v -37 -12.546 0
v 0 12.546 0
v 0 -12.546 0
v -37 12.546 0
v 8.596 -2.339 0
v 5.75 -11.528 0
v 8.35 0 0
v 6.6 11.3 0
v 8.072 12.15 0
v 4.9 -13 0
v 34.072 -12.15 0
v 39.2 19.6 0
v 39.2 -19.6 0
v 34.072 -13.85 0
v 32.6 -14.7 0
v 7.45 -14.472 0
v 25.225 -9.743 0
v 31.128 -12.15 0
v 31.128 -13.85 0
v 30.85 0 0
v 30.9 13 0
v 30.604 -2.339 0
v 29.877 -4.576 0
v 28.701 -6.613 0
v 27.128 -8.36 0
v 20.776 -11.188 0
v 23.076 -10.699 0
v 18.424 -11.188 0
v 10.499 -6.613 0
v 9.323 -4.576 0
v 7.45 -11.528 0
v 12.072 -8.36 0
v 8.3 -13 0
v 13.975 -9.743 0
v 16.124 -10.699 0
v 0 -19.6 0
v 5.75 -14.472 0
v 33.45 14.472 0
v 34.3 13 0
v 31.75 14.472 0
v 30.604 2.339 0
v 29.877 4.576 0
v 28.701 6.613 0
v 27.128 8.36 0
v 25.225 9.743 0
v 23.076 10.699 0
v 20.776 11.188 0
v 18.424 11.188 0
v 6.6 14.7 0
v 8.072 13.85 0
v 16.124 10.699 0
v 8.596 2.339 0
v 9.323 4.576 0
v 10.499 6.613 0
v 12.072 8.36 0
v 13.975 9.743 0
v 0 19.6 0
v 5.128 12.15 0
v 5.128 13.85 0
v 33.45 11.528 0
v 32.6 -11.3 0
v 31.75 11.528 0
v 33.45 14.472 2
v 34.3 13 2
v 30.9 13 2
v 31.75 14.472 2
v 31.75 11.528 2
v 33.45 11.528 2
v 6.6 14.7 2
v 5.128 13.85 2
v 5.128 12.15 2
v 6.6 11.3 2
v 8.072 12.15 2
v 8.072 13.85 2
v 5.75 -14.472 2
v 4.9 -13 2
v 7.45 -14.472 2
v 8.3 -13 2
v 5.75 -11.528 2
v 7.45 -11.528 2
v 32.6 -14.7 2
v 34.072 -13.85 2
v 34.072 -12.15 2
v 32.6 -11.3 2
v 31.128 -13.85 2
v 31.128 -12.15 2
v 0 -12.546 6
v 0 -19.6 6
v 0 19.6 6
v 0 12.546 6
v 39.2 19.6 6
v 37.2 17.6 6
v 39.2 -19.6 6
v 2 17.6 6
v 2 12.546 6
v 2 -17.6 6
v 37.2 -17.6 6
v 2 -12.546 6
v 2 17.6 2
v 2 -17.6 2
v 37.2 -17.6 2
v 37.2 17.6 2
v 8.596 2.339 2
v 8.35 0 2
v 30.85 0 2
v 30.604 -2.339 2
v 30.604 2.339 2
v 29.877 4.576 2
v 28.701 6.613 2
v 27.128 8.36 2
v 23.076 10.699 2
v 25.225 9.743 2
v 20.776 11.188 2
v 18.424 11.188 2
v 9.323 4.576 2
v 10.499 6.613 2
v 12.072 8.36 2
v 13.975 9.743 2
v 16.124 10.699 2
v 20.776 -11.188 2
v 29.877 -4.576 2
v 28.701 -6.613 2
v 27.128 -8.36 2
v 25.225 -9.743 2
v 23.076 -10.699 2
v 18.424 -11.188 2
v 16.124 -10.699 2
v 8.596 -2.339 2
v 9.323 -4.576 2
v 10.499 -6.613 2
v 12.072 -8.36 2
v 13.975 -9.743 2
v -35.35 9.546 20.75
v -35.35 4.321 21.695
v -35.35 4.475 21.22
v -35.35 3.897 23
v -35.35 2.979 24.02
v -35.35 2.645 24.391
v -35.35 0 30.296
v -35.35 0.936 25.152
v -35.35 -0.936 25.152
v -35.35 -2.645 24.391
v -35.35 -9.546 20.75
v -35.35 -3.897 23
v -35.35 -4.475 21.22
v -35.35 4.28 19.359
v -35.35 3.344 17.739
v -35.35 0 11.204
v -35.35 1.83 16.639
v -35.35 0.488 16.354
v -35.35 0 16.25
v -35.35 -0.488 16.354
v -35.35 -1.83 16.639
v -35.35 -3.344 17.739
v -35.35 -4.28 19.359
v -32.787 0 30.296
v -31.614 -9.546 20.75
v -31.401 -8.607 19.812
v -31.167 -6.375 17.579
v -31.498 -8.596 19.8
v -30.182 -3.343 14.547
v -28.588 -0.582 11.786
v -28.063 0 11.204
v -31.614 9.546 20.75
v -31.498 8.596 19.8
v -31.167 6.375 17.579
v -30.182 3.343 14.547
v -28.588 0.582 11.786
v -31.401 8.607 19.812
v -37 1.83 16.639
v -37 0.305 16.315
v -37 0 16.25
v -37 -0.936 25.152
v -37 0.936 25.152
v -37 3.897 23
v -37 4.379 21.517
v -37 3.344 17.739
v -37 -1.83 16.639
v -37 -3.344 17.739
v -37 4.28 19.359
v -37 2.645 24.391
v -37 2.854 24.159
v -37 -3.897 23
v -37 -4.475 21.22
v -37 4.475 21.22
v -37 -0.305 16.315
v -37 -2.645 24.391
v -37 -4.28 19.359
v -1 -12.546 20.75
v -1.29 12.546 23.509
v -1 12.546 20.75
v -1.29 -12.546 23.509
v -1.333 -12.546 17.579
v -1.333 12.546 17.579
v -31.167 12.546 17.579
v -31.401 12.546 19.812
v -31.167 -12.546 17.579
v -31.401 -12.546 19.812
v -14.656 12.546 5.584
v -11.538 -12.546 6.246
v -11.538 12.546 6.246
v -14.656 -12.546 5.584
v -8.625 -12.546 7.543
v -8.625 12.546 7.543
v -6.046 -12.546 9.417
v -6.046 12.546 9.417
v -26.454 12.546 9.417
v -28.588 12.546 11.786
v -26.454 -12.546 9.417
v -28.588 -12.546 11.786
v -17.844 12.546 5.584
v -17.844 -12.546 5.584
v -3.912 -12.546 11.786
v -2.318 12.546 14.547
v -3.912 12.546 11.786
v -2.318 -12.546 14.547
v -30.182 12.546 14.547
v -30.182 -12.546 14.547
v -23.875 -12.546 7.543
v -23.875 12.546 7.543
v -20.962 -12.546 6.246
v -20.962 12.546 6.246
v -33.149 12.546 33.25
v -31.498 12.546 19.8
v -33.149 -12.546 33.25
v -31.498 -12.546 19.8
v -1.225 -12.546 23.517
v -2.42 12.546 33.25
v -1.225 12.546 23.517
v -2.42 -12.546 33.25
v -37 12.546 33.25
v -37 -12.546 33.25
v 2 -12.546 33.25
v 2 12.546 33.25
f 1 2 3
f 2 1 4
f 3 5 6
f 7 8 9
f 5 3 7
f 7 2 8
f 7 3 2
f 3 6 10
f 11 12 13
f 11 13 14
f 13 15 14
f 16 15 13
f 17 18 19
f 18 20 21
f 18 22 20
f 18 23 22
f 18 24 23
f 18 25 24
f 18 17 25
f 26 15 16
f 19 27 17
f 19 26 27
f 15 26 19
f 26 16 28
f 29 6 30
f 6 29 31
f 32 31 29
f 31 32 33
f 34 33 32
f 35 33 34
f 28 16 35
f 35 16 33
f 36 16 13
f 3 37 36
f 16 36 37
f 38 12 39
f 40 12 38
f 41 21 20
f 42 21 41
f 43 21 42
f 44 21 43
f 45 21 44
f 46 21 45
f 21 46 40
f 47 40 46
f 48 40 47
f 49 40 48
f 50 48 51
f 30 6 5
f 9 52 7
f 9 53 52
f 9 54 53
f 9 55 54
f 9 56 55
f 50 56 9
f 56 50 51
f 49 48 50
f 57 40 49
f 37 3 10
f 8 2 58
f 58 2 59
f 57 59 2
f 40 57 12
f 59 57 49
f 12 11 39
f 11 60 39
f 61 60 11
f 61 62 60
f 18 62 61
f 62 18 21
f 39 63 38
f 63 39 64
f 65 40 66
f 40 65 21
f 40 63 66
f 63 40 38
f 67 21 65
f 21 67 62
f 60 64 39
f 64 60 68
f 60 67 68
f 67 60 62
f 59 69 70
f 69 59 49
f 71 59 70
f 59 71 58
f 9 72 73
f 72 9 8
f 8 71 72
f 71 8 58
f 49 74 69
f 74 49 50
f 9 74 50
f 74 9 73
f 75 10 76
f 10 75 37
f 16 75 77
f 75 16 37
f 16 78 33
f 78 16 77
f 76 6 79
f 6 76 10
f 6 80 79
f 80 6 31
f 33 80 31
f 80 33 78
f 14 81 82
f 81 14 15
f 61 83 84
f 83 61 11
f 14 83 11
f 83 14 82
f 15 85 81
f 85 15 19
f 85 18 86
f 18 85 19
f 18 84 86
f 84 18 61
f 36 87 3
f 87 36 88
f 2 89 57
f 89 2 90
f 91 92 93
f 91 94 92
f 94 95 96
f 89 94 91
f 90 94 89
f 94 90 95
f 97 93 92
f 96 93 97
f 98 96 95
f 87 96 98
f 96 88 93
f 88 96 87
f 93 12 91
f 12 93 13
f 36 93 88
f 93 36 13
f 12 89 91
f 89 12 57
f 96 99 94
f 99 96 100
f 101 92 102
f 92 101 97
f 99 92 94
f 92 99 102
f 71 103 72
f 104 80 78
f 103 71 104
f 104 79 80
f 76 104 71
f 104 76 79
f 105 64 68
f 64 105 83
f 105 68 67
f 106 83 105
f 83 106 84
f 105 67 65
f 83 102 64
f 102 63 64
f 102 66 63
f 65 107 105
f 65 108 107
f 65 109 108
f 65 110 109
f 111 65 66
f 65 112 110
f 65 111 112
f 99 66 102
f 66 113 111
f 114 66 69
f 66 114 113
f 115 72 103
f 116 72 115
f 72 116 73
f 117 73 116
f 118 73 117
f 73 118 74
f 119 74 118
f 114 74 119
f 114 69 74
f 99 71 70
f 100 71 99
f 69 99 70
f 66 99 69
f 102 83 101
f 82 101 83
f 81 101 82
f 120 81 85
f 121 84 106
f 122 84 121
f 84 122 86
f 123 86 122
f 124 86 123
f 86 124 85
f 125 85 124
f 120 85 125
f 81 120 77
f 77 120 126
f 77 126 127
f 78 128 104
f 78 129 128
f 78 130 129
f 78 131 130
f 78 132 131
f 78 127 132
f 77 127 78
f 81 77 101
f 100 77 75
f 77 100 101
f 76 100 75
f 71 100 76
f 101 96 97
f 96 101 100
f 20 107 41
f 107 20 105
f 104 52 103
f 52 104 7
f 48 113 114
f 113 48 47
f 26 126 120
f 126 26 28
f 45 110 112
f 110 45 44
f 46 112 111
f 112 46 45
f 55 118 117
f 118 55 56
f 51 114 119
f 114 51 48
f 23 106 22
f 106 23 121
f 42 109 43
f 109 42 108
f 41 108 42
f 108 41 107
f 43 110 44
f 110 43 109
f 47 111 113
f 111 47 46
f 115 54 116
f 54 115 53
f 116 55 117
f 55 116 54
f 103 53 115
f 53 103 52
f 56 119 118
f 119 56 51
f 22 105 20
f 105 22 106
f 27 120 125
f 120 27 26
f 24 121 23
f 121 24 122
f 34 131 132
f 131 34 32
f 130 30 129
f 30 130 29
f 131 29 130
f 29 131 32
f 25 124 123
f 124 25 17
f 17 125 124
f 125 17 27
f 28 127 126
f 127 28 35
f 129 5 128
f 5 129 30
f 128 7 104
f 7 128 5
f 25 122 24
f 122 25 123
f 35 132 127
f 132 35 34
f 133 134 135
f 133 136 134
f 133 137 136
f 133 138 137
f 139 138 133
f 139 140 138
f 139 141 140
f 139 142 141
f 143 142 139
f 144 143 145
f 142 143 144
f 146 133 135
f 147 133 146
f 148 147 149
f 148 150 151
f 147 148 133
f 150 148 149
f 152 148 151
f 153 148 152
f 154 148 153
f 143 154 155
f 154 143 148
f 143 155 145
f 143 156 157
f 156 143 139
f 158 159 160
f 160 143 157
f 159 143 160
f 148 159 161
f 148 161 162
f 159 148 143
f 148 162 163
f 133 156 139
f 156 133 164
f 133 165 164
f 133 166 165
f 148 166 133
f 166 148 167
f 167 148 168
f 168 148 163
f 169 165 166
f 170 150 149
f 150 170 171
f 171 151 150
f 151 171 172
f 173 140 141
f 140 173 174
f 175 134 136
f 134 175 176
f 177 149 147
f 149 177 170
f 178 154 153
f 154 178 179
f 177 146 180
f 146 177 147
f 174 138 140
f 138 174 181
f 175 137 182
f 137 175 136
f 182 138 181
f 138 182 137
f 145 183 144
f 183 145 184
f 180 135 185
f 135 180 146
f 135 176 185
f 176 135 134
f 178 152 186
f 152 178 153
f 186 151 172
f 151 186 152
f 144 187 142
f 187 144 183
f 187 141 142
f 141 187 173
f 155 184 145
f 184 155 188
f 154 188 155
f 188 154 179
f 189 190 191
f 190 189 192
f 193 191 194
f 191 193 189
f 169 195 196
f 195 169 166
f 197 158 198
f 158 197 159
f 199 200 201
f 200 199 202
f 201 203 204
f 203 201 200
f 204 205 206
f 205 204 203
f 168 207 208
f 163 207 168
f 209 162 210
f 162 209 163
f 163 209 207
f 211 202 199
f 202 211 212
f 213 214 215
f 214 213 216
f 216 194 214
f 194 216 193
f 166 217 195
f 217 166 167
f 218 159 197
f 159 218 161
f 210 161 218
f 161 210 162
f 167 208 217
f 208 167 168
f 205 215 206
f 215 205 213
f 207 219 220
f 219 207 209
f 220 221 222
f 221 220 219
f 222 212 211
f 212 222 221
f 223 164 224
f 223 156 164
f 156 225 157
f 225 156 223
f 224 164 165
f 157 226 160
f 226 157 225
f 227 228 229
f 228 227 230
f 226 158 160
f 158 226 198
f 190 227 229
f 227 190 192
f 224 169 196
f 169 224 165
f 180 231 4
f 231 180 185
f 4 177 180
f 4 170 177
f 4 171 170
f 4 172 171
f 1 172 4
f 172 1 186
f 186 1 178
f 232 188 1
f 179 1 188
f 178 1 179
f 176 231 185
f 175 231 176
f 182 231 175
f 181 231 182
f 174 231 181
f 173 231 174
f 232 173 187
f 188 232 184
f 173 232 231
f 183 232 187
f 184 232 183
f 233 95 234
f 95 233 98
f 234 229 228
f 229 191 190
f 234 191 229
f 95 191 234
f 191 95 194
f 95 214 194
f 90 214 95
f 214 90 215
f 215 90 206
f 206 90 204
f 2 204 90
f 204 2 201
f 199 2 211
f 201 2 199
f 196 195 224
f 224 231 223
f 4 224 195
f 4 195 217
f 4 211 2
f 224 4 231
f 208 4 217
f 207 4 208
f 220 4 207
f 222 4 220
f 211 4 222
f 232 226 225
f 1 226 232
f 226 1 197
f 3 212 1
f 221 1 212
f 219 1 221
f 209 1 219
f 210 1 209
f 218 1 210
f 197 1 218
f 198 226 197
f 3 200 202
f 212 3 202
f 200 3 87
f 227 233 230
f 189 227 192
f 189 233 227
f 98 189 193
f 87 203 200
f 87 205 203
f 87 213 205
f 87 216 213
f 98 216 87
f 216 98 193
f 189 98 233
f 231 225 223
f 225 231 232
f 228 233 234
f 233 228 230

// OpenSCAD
//nema mount
nema_width      = 35.2;
nema_screw_dist = 26;
nema_screw_dia  = 3.4;
nema_indent_dia = 22.5;
plate_thickness = 2;
wall_height     = 6;

plate_width     = nema_width+(plate_thickness*2);
 
tube_dia        = 30.5;
clamp_inner      = 3;
clamp_outer      = 5.5;
nut_width = 13.5;
nut_depth = 3.5;
bolt_dia  = 9;


clamp_length     = (nut_width*sqrt(2))+(2*clamp_inner);//plate_width;
clamp_width = tube_dia+ clamp_inner + clamp_outer ;

clamp_height    = tube_dia+(clamp_outer*2);//clamp_width;//30;




union(){
    //nema plate
    translate([plate_width/2,0,wall_height/2]){
        difference(){
            
            cube([plate_width, plate_width, wall_height],center=true);
            
            translate([0,0,2]){
                cube([nema_width, nema_width,wall_height],center=true);
            }
            
            cylinder(r=nema_indent_dia/2,h=wall_height, center=true);
            
            
            for(angle = [0:90:300]){
                rotate(a = angle){
                    translate([nema_screw_dist/2,nema_screw_dist/2,0]){
                        cylinder(r=nema_screw_dia/2,h=wall_height, center=true);
                    }
                }
            }
        }
    }

    
    //clamp
    translate([plate_thickness -(clamp_width/2), 0, clamp_height/2]){
        
        difference(){        
            cube([clamp_width, clamp_length, clamp_height], center=true);
            translate([(clamp_outer-clamp_inner)/2,0,0]){
            rotate([90, 0, 0]){
                cylinder(r=tube_dia/2, h=plate_width, center=true);
            }
            
            rotate([0, -7, 0]){
            translate([0, 0, tube_dia*0.53]){
                
                    cube([tube_dia
                , clamp_width, tube_dia], center=true);
                }
            }
        
            //Captive nut
            translate([ -(tube_dia/2
        ), 0,0]){
                rotate([45,0,0]){
                    cube([nut_depth*2.2, nut_width,  nut_width], center=true);
                }
                rotate([0,90,0]){     
                    cylinder(r=bolt_dia/2,h=clamp_outer*3, center=true);
                }
            }
        }
            translate([0, 0, clamp_outer+(tube_dia/2)]){
                cube([clamp_width, clamp_height, clamp_outer*3], center=true);
            }
        
    }
    }
}
